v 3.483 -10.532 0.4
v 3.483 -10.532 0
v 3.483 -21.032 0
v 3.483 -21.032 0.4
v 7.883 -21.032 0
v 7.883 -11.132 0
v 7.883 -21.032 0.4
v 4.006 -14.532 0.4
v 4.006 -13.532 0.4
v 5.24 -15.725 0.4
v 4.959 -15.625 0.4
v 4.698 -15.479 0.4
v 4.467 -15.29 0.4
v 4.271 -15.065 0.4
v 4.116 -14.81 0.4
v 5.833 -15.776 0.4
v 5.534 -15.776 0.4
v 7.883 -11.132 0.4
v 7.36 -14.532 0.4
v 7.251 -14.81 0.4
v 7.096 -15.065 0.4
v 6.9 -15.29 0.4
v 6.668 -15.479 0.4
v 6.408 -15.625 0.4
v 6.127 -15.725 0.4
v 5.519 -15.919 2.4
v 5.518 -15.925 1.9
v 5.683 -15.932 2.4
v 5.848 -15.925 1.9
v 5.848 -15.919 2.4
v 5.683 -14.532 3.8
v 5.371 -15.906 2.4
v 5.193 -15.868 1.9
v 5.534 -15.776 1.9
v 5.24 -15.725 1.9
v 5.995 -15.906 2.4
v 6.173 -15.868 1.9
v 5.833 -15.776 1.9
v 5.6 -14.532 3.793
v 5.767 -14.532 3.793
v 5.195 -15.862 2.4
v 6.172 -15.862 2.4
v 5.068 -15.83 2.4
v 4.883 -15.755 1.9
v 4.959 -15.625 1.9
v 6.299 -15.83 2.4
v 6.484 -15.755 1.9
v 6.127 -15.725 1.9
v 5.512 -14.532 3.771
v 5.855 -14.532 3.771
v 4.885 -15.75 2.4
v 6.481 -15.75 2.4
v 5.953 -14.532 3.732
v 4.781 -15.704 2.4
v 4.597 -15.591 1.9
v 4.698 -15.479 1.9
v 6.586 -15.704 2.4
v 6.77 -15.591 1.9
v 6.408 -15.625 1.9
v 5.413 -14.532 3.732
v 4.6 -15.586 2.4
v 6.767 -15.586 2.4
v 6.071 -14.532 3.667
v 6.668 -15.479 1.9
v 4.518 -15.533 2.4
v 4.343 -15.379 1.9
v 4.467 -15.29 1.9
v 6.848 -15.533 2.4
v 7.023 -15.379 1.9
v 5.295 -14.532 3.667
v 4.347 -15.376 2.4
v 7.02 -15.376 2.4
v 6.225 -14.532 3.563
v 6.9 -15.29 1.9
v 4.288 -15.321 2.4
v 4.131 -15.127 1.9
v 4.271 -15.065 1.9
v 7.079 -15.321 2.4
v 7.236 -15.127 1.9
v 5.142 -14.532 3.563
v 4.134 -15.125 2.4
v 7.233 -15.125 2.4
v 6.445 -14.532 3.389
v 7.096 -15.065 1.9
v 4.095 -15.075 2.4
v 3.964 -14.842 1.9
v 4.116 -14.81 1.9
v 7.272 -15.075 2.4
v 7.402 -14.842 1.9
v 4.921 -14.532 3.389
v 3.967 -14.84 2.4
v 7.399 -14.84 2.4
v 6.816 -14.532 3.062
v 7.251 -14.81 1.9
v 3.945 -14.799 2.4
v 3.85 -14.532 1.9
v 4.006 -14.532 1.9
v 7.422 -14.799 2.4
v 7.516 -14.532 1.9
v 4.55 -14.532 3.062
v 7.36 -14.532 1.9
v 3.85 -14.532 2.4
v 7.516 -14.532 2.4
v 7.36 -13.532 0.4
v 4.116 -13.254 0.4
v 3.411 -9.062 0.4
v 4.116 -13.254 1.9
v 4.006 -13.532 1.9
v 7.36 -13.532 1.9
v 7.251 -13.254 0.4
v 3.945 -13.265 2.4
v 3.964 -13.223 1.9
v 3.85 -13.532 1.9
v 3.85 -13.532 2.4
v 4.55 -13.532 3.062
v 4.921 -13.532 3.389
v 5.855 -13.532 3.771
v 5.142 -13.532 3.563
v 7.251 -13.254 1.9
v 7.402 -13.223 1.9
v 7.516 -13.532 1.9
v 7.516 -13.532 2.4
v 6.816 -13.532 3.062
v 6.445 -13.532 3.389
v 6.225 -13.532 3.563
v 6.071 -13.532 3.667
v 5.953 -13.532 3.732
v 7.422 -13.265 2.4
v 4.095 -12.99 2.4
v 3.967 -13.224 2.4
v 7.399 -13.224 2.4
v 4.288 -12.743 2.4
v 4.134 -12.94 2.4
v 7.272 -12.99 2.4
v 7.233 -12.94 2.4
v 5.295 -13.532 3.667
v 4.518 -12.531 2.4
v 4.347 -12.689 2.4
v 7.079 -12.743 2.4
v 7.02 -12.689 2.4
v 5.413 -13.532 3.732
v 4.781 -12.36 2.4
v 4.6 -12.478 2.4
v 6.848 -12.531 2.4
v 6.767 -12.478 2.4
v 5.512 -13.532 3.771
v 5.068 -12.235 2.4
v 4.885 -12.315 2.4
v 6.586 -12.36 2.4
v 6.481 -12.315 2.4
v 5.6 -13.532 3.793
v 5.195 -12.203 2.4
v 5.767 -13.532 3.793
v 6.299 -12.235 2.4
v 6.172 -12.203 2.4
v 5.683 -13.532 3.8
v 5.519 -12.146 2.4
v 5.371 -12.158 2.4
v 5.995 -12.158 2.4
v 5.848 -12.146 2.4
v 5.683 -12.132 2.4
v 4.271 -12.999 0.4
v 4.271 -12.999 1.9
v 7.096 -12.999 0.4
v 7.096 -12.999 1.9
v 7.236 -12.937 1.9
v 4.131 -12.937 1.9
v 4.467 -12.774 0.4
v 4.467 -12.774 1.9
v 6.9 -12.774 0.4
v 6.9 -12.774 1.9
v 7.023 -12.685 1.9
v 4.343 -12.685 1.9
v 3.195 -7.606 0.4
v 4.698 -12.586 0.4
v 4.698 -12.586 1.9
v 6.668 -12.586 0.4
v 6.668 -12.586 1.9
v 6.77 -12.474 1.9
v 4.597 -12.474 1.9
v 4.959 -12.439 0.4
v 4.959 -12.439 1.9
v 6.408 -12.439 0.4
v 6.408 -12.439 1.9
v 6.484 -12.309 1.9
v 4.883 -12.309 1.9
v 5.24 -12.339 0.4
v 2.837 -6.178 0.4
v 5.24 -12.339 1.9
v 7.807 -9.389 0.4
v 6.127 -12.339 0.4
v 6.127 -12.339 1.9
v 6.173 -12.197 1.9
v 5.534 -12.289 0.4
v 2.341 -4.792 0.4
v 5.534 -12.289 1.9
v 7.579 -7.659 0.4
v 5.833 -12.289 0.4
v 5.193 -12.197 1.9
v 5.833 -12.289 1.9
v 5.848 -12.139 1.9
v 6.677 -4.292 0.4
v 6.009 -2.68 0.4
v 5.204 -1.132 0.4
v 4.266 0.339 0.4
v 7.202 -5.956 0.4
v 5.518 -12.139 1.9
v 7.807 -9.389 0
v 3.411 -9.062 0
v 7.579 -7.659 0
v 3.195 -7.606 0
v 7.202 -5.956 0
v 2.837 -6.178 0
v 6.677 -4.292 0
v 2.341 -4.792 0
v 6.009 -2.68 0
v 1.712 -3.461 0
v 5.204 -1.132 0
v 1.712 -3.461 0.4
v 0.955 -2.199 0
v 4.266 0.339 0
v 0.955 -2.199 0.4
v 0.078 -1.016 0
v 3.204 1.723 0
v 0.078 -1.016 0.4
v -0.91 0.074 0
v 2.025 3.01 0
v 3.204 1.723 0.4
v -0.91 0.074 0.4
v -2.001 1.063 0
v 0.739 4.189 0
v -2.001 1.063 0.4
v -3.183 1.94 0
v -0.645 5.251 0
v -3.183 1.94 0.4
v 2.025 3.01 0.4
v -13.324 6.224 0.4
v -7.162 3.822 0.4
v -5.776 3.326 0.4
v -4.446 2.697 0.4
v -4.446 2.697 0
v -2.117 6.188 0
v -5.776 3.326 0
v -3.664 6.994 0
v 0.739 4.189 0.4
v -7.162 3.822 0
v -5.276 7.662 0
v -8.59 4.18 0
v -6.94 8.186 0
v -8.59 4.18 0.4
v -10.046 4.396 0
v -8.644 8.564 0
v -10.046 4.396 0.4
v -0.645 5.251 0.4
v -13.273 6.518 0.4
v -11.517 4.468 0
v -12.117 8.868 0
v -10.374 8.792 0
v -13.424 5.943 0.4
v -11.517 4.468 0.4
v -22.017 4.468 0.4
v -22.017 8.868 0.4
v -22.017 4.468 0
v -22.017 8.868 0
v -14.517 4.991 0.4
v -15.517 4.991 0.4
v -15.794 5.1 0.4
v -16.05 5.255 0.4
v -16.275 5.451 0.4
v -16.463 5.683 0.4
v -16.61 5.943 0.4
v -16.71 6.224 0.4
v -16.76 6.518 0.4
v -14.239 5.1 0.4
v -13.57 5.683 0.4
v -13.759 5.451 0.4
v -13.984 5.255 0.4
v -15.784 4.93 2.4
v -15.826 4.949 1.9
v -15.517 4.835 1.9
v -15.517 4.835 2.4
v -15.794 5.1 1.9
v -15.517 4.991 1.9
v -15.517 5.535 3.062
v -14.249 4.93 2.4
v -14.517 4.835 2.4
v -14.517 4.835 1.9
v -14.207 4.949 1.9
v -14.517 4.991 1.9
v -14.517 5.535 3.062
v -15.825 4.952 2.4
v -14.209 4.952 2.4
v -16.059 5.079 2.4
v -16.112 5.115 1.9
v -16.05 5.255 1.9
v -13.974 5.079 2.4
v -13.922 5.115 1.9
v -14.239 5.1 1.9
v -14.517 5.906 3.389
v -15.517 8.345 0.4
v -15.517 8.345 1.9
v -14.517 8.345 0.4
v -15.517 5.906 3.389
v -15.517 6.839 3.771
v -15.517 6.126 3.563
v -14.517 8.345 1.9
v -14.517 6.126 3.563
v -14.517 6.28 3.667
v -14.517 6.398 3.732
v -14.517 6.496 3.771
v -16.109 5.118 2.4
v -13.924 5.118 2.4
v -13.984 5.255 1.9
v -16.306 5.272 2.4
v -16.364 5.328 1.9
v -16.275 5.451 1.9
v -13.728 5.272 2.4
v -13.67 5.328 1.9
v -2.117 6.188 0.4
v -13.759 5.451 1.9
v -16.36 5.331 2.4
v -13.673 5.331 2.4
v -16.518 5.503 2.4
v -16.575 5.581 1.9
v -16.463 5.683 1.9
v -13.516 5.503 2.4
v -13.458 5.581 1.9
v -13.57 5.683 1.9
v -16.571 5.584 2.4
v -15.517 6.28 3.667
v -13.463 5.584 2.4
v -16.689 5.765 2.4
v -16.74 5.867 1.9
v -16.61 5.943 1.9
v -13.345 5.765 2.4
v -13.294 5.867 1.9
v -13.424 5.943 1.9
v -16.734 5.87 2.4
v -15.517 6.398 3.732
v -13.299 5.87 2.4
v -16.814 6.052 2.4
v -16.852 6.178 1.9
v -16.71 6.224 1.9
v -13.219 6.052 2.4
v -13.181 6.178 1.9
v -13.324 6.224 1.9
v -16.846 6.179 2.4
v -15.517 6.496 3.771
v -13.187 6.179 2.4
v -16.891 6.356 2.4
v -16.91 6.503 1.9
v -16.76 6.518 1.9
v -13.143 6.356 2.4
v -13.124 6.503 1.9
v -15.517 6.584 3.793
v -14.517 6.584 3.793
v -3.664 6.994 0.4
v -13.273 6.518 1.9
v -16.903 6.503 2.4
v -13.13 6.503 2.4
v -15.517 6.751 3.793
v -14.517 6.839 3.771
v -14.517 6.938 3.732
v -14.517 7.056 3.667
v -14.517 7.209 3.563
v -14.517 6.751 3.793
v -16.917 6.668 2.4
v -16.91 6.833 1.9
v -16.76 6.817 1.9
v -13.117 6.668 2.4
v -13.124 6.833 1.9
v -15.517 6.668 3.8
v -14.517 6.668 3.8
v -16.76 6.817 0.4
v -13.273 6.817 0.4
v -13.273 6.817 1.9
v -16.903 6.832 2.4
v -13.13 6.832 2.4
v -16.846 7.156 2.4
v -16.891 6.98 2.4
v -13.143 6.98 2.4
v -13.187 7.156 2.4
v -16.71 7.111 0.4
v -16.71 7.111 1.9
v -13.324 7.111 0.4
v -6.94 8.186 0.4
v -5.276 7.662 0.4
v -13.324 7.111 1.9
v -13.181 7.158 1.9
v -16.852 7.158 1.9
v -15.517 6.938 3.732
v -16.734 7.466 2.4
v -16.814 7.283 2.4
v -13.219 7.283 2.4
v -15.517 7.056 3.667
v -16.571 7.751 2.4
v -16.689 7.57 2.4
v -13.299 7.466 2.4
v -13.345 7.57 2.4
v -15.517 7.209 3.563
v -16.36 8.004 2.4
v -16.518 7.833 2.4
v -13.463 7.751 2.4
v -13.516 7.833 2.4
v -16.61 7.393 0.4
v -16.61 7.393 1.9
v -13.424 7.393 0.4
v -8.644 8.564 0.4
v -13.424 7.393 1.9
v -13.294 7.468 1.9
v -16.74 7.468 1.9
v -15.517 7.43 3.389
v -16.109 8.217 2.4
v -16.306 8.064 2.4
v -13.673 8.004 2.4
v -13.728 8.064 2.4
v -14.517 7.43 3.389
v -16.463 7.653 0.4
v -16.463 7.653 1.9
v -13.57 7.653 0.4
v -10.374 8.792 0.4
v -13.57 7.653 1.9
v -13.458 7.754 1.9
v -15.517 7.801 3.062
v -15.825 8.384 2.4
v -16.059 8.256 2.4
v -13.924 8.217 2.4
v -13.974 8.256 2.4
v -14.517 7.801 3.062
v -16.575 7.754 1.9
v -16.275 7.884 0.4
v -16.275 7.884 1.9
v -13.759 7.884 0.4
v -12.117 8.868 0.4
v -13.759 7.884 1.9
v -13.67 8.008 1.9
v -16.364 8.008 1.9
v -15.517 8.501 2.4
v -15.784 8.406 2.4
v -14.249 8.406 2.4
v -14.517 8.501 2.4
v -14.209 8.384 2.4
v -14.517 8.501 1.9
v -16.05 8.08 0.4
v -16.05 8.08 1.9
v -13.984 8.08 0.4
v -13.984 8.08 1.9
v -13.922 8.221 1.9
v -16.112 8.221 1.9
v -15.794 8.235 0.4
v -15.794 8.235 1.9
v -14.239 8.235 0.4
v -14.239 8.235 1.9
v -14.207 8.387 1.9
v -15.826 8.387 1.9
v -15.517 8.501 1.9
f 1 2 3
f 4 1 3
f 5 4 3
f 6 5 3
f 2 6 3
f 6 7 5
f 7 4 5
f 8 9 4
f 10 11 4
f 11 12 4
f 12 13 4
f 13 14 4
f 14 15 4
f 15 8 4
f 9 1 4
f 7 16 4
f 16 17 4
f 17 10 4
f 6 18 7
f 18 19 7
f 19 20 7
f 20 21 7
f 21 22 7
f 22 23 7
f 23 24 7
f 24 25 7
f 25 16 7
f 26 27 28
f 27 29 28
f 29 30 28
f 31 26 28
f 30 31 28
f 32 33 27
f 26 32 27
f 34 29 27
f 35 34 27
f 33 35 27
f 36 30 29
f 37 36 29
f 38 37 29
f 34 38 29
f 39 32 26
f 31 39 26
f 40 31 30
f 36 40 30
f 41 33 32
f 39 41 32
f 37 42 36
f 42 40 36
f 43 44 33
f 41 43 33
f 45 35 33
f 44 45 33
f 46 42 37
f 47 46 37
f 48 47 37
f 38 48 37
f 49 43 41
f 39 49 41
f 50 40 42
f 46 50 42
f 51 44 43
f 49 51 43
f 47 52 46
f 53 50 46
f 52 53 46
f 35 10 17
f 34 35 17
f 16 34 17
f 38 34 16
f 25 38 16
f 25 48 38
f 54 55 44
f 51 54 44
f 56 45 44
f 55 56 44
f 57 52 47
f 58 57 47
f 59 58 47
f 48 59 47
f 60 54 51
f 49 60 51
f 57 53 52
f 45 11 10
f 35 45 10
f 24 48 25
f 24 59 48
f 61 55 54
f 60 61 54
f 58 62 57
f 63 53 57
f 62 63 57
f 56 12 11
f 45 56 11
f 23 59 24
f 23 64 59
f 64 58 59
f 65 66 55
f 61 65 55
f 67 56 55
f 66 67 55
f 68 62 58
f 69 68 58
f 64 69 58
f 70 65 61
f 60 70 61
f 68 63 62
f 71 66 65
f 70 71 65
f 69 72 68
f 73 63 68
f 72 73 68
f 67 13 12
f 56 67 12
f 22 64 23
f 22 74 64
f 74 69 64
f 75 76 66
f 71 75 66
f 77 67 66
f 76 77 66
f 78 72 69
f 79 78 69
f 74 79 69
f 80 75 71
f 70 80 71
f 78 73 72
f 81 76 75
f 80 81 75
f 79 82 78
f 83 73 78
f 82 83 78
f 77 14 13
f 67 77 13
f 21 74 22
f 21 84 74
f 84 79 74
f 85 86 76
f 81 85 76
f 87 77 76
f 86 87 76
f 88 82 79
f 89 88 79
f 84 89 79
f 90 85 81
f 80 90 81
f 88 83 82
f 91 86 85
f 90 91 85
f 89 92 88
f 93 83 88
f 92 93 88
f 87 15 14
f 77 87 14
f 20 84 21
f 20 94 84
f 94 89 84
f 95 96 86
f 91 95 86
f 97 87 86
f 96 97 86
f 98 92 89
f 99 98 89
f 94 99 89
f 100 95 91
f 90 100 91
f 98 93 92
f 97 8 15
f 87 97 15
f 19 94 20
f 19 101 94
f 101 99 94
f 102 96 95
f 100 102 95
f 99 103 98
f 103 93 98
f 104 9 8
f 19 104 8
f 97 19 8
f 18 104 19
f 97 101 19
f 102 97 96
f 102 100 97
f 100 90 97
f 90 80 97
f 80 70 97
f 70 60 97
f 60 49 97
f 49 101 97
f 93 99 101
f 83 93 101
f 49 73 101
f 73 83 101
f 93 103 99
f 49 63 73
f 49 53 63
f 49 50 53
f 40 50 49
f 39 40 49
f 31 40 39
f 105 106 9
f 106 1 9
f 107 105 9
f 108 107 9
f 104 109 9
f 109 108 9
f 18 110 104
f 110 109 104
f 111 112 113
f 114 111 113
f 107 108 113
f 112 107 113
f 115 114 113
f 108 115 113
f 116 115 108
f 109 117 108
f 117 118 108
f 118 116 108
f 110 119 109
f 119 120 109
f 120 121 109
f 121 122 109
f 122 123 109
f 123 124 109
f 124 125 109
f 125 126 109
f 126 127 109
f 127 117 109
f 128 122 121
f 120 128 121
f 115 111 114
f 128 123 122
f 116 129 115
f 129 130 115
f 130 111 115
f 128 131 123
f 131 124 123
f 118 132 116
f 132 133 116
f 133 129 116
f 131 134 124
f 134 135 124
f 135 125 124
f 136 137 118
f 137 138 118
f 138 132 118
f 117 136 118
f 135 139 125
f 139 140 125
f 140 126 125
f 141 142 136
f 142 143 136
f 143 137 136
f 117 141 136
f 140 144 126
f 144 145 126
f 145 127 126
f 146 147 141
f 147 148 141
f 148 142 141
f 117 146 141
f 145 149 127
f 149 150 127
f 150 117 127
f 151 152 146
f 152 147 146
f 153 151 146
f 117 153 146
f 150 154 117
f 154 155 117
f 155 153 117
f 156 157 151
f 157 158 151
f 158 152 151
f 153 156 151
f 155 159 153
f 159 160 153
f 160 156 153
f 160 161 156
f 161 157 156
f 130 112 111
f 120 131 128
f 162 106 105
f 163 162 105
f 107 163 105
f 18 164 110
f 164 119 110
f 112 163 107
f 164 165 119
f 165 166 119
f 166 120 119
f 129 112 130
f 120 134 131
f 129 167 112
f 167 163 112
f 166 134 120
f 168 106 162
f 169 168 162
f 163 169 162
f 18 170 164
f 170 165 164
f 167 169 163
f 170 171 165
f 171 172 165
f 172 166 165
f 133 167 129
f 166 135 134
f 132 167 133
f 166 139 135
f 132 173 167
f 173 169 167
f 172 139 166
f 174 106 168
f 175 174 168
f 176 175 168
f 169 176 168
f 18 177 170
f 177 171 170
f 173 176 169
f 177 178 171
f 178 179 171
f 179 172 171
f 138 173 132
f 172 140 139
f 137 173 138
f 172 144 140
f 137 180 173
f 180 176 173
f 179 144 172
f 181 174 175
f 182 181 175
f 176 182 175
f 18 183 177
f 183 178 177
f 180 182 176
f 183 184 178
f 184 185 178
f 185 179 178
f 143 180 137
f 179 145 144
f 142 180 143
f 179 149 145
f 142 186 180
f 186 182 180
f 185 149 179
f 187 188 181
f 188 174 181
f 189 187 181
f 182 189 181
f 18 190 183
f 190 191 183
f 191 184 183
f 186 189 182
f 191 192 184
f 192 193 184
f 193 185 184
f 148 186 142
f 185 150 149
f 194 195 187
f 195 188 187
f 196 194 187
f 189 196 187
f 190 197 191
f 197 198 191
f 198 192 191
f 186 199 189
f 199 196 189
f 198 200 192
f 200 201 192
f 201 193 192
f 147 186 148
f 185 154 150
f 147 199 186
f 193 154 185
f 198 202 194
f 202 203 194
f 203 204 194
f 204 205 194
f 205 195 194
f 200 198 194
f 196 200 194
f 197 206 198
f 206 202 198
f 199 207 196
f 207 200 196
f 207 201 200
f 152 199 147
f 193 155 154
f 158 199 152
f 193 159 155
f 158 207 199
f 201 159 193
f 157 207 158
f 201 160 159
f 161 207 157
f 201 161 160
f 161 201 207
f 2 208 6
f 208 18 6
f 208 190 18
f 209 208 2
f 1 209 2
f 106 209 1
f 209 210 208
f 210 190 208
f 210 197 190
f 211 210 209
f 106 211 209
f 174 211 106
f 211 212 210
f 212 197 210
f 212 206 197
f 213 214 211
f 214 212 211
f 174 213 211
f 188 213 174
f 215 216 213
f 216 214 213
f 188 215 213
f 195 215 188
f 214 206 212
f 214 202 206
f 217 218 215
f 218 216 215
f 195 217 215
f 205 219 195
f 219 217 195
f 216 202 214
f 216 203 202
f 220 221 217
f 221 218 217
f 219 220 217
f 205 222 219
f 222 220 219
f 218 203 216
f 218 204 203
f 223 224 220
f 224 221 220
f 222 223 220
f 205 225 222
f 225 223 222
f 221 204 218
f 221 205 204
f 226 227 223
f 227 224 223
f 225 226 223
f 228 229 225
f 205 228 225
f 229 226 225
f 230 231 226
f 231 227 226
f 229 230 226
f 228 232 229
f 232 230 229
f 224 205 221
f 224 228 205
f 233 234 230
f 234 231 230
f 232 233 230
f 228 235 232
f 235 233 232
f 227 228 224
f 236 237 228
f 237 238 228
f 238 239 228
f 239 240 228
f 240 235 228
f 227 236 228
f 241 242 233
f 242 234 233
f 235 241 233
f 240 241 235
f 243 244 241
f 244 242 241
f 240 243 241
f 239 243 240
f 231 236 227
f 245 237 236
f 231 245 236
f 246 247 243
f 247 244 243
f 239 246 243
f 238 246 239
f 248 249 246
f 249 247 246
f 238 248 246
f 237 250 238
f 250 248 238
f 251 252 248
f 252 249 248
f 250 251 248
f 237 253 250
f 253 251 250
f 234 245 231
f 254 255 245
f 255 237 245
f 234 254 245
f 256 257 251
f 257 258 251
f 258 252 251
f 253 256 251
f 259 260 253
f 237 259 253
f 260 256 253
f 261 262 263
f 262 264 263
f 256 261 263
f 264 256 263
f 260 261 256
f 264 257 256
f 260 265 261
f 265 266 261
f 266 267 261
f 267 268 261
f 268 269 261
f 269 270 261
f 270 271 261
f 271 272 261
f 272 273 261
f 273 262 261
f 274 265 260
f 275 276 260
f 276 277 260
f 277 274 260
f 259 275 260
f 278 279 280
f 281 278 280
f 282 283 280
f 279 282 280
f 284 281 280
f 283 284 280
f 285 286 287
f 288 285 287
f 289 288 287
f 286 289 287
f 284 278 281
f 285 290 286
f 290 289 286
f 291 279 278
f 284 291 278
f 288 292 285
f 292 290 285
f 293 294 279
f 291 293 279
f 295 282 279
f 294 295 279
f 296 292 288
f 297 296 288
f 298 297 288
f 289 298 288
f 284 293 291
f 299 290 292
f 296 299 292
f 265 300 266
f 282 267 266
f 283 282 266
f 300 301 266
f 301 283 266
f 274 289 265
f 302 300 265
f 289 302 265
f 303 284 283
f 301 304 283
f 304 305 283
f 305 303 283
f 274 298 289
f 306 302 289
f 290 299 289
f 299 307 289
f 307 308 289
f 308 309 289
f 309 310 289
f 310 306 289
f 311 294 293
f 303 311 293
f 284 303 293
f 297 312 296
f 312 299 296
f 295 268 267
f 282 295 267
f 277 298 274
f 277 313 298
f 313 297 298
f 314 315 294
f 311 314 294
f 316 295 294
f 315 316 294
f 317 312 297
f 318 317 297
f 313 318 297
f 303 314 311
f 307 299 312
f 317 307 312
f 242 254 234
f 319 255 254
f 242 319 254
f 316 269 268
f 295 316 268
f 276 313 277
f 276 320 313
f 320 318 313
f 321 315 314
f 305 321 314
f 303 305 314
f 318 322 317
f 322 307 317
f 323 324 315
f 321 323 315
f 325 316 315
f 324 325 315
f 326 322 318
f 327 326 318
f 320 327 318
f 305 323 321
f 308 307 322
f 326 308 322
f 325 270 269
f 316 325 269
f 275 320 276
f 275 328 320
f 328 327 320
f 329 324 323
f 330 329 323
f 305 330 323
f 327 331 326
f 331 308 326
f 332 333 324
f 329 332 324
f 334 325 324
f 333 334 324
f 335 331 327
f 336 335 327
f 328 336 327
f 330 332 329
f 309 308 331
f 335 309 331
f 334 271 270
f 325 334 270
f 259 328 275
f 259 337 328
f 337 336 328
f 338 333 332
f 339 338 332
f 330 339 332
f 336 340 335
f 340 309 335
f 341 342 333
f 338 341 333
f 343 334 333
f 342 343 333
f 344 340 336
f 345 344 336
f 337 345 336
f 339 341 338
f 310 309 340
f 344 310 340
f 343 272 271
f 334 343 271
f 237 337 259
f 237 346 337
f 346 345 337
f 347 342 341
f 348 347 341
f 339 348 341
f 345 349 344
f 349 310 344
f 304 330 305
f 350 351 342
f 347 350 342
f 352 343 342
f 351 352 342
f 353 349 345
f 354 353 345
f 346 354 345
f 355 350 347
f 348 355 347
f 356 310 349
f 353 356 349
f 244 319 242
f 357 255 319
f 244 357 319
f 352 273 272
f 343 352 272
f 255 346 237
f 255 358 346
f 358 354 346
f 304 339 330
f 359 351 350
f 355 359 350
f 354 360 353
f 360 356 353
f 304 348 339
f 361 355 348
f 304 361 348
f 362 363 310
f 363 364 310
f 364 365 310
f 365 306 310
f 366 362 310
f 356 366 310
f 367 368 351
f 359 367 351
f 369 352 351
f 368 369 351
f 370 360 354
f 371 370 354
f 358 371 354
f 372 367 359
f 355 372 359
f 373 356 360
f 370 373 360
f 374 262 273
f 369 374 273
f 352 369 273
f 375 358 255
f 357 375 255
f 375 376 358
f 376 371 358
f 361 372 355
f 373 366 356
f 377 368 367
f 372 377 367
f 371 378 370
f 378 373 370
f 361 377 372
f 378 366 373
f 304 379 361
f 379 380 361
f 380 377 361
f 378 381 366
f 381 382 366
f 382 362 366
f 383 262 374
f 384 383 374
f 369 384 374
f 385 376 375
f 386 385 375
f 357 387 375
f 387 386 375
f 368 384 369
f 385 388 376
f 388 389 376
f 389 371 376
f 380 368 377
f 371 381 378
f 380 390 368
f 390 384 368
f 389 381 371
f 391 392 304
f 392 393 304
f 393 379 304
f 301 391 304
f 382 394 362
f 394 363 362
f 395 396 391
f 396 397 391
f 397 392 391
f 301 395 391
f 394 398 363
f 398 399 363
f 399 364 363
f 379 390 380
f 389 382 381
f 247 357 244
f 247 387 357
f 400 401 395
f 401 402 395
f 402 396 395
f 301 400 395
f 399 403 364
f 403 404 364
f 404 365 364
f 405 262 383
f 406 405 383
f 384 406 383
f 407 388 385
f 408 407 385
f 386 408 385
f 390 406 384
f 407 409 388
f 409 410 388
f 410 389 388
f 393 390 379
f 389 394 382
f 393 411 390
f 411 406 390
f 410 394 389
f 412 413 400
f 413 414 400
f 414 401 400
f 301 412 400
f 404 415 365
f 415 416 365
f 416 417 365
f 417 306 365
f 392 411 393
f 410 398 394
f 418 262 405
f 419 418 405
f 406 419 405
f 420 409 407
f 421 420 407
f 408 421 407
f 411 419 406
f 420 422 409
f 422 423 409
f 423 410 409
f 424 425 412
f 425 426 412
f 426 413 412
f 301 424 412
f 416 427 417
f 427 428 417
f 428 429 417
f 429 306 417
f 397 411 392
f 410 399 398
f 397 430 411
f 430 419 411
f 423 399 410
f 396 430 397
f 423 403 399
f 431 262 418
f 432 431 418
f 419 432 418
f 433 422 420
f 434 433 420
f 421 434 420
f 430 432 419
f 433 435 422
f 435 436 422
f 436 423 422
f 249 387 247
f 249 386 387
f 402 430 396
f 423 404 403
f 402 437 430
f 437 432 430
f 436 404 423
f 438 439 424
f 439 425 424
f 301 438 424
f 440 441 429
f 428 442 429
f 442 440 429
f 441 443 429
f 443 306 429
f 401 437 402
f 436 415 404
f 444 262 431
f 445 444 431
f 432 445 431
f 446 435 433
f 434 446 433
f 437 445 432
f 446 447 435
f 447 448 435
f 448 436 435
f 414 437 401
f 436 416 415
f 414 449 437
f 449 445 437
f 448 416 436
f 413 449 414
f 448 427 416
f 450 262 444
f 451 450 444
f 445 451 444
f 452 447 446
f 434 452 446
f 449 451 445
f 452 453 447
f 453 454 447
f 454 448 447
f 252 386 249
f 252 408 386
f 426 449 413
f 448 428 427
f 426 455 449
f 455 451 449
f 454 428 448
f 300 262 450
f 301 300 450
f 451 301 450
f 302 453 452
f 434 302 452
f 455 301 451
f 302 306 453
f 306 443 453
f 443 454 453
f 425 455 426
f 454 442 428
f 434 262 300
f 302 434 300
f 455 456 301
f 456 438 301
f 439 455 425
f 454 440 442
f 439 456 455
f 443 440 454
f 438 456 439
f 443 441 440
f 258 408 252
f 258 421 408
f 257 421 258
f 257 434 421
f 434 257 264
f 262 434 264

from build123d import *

# Parameters (mm, degrees)
SKICA1_W                 = 29.9
SKICA1_H                 = 4.4
SKICA1_W_2               = 4.4
SKICA1_H_2               = 25.5
P_IDAT_VYSUNUT_M1_DEPTH  = 0.4
ZAOBLIT3_R               = 15
ZAOBLIT4_R               = 20
SKICA2_R                 = 1.75
P_IDAT_VYSUNUT_M2_DEPTH  = 1.5
SKICA3_R                 = 1.9
P_IDAT_VYSUNUT_M3_DEPTH  = 2
ZKOSEN_1_SIZE            = 1.5
SKICA4_W                 = 3.8
SKICA4_H                 = 1
SKICA4_W_2               = 1
SKICA4_H_2               = 3.8
ODEBRAT_VYSUNUT_M1_DEPTH = 3.5


with BuildPart() as part:
    # Skica1 → Přidat vysunutím1 (new body)
    with BuildSketch(Plane.XY):
        with Locations((-7.066698514, 6.667743702)):
            Rectangle(SKICA1_W, SKICA1_H)
        with Locations((5.683301486, -8.282256298)):
            Rectangle(SKICA1_W_2, SKICA1_H_2)
    extrude(amount=P_IDAT_VYSUNUT_M1_DEPTH)

    # Zaoblit3
    zaoblit3_edges = [part.edges().sort_by_distance(p)[0] for p in [
        (3.483301486, 4.467743702, 0.2),
    ]]
    fillet(zaoblit3_edges, radius=ZAOBLIT3_R)

    # Zaoblit4
    zaoblit4_edges = [part.edges().sort_by_distance(p)[0] for p in [
        (7.883301486, 8.867743702, 0.2),
    ]]
    fillet(zaoblit4_edges, radius=ZAOBLIT4_R)

    # Skica2 → Přidat vysunutím2 (add)
    with BuildSketch(Plane.XY.offset(0.4)):
        with Locations((-15.016698514, 6.667743702)):
            Circle(SKICA2_R)
        with Locations((5.683301486, -14.032256298)):
            Circle(SKICA2_R)
    extrude(amount=P_IDAT_VYSUNUT_M2_DEPTH)

    # Skica3 → Přidat vysunutím3 (add)
    with BuildSketch(Plane.XY.offset(1.9)):
        with Locations((-15.016698514, 6.667743702)):
            Circle(SKICA3_R)
        with Locations((5.683301486, -14.032256298)):
            Circle(SKICA3_R)
    extrude(amount=P_IDAT_VYSUNUT_M3_DEPTH)

    # Zkosení1
    zkosen_1_edges = [part.edges().sort_by_distance(p)[0] for p in [
        (3.783301486, -14.032256298, 3.9),
        (-16.916698514, 6.667743702, 3.9),
    ]]
    chamfer(zkosen_1_edges, length=ZKOSEN_1_SIZE)

    # Skica4 → Odebrat vysunutím1 (cut)
    with BuildSketch(Plane.XY.offset(3.9)):
        with Locations((5.683301486, -14.032256298)):
            Rectangle(SKICA4_W, SKICA4_H)
        with Locations((-15.016698514, 6.667743702)):
            Rectangle(SKICA4_W_2, SKICA4_H_2)
    extrude(amount=-ODEBRAT_VYSUNUT_M1_DEPTH, mode=Mode.SUBTRACT)


solid = part.part
